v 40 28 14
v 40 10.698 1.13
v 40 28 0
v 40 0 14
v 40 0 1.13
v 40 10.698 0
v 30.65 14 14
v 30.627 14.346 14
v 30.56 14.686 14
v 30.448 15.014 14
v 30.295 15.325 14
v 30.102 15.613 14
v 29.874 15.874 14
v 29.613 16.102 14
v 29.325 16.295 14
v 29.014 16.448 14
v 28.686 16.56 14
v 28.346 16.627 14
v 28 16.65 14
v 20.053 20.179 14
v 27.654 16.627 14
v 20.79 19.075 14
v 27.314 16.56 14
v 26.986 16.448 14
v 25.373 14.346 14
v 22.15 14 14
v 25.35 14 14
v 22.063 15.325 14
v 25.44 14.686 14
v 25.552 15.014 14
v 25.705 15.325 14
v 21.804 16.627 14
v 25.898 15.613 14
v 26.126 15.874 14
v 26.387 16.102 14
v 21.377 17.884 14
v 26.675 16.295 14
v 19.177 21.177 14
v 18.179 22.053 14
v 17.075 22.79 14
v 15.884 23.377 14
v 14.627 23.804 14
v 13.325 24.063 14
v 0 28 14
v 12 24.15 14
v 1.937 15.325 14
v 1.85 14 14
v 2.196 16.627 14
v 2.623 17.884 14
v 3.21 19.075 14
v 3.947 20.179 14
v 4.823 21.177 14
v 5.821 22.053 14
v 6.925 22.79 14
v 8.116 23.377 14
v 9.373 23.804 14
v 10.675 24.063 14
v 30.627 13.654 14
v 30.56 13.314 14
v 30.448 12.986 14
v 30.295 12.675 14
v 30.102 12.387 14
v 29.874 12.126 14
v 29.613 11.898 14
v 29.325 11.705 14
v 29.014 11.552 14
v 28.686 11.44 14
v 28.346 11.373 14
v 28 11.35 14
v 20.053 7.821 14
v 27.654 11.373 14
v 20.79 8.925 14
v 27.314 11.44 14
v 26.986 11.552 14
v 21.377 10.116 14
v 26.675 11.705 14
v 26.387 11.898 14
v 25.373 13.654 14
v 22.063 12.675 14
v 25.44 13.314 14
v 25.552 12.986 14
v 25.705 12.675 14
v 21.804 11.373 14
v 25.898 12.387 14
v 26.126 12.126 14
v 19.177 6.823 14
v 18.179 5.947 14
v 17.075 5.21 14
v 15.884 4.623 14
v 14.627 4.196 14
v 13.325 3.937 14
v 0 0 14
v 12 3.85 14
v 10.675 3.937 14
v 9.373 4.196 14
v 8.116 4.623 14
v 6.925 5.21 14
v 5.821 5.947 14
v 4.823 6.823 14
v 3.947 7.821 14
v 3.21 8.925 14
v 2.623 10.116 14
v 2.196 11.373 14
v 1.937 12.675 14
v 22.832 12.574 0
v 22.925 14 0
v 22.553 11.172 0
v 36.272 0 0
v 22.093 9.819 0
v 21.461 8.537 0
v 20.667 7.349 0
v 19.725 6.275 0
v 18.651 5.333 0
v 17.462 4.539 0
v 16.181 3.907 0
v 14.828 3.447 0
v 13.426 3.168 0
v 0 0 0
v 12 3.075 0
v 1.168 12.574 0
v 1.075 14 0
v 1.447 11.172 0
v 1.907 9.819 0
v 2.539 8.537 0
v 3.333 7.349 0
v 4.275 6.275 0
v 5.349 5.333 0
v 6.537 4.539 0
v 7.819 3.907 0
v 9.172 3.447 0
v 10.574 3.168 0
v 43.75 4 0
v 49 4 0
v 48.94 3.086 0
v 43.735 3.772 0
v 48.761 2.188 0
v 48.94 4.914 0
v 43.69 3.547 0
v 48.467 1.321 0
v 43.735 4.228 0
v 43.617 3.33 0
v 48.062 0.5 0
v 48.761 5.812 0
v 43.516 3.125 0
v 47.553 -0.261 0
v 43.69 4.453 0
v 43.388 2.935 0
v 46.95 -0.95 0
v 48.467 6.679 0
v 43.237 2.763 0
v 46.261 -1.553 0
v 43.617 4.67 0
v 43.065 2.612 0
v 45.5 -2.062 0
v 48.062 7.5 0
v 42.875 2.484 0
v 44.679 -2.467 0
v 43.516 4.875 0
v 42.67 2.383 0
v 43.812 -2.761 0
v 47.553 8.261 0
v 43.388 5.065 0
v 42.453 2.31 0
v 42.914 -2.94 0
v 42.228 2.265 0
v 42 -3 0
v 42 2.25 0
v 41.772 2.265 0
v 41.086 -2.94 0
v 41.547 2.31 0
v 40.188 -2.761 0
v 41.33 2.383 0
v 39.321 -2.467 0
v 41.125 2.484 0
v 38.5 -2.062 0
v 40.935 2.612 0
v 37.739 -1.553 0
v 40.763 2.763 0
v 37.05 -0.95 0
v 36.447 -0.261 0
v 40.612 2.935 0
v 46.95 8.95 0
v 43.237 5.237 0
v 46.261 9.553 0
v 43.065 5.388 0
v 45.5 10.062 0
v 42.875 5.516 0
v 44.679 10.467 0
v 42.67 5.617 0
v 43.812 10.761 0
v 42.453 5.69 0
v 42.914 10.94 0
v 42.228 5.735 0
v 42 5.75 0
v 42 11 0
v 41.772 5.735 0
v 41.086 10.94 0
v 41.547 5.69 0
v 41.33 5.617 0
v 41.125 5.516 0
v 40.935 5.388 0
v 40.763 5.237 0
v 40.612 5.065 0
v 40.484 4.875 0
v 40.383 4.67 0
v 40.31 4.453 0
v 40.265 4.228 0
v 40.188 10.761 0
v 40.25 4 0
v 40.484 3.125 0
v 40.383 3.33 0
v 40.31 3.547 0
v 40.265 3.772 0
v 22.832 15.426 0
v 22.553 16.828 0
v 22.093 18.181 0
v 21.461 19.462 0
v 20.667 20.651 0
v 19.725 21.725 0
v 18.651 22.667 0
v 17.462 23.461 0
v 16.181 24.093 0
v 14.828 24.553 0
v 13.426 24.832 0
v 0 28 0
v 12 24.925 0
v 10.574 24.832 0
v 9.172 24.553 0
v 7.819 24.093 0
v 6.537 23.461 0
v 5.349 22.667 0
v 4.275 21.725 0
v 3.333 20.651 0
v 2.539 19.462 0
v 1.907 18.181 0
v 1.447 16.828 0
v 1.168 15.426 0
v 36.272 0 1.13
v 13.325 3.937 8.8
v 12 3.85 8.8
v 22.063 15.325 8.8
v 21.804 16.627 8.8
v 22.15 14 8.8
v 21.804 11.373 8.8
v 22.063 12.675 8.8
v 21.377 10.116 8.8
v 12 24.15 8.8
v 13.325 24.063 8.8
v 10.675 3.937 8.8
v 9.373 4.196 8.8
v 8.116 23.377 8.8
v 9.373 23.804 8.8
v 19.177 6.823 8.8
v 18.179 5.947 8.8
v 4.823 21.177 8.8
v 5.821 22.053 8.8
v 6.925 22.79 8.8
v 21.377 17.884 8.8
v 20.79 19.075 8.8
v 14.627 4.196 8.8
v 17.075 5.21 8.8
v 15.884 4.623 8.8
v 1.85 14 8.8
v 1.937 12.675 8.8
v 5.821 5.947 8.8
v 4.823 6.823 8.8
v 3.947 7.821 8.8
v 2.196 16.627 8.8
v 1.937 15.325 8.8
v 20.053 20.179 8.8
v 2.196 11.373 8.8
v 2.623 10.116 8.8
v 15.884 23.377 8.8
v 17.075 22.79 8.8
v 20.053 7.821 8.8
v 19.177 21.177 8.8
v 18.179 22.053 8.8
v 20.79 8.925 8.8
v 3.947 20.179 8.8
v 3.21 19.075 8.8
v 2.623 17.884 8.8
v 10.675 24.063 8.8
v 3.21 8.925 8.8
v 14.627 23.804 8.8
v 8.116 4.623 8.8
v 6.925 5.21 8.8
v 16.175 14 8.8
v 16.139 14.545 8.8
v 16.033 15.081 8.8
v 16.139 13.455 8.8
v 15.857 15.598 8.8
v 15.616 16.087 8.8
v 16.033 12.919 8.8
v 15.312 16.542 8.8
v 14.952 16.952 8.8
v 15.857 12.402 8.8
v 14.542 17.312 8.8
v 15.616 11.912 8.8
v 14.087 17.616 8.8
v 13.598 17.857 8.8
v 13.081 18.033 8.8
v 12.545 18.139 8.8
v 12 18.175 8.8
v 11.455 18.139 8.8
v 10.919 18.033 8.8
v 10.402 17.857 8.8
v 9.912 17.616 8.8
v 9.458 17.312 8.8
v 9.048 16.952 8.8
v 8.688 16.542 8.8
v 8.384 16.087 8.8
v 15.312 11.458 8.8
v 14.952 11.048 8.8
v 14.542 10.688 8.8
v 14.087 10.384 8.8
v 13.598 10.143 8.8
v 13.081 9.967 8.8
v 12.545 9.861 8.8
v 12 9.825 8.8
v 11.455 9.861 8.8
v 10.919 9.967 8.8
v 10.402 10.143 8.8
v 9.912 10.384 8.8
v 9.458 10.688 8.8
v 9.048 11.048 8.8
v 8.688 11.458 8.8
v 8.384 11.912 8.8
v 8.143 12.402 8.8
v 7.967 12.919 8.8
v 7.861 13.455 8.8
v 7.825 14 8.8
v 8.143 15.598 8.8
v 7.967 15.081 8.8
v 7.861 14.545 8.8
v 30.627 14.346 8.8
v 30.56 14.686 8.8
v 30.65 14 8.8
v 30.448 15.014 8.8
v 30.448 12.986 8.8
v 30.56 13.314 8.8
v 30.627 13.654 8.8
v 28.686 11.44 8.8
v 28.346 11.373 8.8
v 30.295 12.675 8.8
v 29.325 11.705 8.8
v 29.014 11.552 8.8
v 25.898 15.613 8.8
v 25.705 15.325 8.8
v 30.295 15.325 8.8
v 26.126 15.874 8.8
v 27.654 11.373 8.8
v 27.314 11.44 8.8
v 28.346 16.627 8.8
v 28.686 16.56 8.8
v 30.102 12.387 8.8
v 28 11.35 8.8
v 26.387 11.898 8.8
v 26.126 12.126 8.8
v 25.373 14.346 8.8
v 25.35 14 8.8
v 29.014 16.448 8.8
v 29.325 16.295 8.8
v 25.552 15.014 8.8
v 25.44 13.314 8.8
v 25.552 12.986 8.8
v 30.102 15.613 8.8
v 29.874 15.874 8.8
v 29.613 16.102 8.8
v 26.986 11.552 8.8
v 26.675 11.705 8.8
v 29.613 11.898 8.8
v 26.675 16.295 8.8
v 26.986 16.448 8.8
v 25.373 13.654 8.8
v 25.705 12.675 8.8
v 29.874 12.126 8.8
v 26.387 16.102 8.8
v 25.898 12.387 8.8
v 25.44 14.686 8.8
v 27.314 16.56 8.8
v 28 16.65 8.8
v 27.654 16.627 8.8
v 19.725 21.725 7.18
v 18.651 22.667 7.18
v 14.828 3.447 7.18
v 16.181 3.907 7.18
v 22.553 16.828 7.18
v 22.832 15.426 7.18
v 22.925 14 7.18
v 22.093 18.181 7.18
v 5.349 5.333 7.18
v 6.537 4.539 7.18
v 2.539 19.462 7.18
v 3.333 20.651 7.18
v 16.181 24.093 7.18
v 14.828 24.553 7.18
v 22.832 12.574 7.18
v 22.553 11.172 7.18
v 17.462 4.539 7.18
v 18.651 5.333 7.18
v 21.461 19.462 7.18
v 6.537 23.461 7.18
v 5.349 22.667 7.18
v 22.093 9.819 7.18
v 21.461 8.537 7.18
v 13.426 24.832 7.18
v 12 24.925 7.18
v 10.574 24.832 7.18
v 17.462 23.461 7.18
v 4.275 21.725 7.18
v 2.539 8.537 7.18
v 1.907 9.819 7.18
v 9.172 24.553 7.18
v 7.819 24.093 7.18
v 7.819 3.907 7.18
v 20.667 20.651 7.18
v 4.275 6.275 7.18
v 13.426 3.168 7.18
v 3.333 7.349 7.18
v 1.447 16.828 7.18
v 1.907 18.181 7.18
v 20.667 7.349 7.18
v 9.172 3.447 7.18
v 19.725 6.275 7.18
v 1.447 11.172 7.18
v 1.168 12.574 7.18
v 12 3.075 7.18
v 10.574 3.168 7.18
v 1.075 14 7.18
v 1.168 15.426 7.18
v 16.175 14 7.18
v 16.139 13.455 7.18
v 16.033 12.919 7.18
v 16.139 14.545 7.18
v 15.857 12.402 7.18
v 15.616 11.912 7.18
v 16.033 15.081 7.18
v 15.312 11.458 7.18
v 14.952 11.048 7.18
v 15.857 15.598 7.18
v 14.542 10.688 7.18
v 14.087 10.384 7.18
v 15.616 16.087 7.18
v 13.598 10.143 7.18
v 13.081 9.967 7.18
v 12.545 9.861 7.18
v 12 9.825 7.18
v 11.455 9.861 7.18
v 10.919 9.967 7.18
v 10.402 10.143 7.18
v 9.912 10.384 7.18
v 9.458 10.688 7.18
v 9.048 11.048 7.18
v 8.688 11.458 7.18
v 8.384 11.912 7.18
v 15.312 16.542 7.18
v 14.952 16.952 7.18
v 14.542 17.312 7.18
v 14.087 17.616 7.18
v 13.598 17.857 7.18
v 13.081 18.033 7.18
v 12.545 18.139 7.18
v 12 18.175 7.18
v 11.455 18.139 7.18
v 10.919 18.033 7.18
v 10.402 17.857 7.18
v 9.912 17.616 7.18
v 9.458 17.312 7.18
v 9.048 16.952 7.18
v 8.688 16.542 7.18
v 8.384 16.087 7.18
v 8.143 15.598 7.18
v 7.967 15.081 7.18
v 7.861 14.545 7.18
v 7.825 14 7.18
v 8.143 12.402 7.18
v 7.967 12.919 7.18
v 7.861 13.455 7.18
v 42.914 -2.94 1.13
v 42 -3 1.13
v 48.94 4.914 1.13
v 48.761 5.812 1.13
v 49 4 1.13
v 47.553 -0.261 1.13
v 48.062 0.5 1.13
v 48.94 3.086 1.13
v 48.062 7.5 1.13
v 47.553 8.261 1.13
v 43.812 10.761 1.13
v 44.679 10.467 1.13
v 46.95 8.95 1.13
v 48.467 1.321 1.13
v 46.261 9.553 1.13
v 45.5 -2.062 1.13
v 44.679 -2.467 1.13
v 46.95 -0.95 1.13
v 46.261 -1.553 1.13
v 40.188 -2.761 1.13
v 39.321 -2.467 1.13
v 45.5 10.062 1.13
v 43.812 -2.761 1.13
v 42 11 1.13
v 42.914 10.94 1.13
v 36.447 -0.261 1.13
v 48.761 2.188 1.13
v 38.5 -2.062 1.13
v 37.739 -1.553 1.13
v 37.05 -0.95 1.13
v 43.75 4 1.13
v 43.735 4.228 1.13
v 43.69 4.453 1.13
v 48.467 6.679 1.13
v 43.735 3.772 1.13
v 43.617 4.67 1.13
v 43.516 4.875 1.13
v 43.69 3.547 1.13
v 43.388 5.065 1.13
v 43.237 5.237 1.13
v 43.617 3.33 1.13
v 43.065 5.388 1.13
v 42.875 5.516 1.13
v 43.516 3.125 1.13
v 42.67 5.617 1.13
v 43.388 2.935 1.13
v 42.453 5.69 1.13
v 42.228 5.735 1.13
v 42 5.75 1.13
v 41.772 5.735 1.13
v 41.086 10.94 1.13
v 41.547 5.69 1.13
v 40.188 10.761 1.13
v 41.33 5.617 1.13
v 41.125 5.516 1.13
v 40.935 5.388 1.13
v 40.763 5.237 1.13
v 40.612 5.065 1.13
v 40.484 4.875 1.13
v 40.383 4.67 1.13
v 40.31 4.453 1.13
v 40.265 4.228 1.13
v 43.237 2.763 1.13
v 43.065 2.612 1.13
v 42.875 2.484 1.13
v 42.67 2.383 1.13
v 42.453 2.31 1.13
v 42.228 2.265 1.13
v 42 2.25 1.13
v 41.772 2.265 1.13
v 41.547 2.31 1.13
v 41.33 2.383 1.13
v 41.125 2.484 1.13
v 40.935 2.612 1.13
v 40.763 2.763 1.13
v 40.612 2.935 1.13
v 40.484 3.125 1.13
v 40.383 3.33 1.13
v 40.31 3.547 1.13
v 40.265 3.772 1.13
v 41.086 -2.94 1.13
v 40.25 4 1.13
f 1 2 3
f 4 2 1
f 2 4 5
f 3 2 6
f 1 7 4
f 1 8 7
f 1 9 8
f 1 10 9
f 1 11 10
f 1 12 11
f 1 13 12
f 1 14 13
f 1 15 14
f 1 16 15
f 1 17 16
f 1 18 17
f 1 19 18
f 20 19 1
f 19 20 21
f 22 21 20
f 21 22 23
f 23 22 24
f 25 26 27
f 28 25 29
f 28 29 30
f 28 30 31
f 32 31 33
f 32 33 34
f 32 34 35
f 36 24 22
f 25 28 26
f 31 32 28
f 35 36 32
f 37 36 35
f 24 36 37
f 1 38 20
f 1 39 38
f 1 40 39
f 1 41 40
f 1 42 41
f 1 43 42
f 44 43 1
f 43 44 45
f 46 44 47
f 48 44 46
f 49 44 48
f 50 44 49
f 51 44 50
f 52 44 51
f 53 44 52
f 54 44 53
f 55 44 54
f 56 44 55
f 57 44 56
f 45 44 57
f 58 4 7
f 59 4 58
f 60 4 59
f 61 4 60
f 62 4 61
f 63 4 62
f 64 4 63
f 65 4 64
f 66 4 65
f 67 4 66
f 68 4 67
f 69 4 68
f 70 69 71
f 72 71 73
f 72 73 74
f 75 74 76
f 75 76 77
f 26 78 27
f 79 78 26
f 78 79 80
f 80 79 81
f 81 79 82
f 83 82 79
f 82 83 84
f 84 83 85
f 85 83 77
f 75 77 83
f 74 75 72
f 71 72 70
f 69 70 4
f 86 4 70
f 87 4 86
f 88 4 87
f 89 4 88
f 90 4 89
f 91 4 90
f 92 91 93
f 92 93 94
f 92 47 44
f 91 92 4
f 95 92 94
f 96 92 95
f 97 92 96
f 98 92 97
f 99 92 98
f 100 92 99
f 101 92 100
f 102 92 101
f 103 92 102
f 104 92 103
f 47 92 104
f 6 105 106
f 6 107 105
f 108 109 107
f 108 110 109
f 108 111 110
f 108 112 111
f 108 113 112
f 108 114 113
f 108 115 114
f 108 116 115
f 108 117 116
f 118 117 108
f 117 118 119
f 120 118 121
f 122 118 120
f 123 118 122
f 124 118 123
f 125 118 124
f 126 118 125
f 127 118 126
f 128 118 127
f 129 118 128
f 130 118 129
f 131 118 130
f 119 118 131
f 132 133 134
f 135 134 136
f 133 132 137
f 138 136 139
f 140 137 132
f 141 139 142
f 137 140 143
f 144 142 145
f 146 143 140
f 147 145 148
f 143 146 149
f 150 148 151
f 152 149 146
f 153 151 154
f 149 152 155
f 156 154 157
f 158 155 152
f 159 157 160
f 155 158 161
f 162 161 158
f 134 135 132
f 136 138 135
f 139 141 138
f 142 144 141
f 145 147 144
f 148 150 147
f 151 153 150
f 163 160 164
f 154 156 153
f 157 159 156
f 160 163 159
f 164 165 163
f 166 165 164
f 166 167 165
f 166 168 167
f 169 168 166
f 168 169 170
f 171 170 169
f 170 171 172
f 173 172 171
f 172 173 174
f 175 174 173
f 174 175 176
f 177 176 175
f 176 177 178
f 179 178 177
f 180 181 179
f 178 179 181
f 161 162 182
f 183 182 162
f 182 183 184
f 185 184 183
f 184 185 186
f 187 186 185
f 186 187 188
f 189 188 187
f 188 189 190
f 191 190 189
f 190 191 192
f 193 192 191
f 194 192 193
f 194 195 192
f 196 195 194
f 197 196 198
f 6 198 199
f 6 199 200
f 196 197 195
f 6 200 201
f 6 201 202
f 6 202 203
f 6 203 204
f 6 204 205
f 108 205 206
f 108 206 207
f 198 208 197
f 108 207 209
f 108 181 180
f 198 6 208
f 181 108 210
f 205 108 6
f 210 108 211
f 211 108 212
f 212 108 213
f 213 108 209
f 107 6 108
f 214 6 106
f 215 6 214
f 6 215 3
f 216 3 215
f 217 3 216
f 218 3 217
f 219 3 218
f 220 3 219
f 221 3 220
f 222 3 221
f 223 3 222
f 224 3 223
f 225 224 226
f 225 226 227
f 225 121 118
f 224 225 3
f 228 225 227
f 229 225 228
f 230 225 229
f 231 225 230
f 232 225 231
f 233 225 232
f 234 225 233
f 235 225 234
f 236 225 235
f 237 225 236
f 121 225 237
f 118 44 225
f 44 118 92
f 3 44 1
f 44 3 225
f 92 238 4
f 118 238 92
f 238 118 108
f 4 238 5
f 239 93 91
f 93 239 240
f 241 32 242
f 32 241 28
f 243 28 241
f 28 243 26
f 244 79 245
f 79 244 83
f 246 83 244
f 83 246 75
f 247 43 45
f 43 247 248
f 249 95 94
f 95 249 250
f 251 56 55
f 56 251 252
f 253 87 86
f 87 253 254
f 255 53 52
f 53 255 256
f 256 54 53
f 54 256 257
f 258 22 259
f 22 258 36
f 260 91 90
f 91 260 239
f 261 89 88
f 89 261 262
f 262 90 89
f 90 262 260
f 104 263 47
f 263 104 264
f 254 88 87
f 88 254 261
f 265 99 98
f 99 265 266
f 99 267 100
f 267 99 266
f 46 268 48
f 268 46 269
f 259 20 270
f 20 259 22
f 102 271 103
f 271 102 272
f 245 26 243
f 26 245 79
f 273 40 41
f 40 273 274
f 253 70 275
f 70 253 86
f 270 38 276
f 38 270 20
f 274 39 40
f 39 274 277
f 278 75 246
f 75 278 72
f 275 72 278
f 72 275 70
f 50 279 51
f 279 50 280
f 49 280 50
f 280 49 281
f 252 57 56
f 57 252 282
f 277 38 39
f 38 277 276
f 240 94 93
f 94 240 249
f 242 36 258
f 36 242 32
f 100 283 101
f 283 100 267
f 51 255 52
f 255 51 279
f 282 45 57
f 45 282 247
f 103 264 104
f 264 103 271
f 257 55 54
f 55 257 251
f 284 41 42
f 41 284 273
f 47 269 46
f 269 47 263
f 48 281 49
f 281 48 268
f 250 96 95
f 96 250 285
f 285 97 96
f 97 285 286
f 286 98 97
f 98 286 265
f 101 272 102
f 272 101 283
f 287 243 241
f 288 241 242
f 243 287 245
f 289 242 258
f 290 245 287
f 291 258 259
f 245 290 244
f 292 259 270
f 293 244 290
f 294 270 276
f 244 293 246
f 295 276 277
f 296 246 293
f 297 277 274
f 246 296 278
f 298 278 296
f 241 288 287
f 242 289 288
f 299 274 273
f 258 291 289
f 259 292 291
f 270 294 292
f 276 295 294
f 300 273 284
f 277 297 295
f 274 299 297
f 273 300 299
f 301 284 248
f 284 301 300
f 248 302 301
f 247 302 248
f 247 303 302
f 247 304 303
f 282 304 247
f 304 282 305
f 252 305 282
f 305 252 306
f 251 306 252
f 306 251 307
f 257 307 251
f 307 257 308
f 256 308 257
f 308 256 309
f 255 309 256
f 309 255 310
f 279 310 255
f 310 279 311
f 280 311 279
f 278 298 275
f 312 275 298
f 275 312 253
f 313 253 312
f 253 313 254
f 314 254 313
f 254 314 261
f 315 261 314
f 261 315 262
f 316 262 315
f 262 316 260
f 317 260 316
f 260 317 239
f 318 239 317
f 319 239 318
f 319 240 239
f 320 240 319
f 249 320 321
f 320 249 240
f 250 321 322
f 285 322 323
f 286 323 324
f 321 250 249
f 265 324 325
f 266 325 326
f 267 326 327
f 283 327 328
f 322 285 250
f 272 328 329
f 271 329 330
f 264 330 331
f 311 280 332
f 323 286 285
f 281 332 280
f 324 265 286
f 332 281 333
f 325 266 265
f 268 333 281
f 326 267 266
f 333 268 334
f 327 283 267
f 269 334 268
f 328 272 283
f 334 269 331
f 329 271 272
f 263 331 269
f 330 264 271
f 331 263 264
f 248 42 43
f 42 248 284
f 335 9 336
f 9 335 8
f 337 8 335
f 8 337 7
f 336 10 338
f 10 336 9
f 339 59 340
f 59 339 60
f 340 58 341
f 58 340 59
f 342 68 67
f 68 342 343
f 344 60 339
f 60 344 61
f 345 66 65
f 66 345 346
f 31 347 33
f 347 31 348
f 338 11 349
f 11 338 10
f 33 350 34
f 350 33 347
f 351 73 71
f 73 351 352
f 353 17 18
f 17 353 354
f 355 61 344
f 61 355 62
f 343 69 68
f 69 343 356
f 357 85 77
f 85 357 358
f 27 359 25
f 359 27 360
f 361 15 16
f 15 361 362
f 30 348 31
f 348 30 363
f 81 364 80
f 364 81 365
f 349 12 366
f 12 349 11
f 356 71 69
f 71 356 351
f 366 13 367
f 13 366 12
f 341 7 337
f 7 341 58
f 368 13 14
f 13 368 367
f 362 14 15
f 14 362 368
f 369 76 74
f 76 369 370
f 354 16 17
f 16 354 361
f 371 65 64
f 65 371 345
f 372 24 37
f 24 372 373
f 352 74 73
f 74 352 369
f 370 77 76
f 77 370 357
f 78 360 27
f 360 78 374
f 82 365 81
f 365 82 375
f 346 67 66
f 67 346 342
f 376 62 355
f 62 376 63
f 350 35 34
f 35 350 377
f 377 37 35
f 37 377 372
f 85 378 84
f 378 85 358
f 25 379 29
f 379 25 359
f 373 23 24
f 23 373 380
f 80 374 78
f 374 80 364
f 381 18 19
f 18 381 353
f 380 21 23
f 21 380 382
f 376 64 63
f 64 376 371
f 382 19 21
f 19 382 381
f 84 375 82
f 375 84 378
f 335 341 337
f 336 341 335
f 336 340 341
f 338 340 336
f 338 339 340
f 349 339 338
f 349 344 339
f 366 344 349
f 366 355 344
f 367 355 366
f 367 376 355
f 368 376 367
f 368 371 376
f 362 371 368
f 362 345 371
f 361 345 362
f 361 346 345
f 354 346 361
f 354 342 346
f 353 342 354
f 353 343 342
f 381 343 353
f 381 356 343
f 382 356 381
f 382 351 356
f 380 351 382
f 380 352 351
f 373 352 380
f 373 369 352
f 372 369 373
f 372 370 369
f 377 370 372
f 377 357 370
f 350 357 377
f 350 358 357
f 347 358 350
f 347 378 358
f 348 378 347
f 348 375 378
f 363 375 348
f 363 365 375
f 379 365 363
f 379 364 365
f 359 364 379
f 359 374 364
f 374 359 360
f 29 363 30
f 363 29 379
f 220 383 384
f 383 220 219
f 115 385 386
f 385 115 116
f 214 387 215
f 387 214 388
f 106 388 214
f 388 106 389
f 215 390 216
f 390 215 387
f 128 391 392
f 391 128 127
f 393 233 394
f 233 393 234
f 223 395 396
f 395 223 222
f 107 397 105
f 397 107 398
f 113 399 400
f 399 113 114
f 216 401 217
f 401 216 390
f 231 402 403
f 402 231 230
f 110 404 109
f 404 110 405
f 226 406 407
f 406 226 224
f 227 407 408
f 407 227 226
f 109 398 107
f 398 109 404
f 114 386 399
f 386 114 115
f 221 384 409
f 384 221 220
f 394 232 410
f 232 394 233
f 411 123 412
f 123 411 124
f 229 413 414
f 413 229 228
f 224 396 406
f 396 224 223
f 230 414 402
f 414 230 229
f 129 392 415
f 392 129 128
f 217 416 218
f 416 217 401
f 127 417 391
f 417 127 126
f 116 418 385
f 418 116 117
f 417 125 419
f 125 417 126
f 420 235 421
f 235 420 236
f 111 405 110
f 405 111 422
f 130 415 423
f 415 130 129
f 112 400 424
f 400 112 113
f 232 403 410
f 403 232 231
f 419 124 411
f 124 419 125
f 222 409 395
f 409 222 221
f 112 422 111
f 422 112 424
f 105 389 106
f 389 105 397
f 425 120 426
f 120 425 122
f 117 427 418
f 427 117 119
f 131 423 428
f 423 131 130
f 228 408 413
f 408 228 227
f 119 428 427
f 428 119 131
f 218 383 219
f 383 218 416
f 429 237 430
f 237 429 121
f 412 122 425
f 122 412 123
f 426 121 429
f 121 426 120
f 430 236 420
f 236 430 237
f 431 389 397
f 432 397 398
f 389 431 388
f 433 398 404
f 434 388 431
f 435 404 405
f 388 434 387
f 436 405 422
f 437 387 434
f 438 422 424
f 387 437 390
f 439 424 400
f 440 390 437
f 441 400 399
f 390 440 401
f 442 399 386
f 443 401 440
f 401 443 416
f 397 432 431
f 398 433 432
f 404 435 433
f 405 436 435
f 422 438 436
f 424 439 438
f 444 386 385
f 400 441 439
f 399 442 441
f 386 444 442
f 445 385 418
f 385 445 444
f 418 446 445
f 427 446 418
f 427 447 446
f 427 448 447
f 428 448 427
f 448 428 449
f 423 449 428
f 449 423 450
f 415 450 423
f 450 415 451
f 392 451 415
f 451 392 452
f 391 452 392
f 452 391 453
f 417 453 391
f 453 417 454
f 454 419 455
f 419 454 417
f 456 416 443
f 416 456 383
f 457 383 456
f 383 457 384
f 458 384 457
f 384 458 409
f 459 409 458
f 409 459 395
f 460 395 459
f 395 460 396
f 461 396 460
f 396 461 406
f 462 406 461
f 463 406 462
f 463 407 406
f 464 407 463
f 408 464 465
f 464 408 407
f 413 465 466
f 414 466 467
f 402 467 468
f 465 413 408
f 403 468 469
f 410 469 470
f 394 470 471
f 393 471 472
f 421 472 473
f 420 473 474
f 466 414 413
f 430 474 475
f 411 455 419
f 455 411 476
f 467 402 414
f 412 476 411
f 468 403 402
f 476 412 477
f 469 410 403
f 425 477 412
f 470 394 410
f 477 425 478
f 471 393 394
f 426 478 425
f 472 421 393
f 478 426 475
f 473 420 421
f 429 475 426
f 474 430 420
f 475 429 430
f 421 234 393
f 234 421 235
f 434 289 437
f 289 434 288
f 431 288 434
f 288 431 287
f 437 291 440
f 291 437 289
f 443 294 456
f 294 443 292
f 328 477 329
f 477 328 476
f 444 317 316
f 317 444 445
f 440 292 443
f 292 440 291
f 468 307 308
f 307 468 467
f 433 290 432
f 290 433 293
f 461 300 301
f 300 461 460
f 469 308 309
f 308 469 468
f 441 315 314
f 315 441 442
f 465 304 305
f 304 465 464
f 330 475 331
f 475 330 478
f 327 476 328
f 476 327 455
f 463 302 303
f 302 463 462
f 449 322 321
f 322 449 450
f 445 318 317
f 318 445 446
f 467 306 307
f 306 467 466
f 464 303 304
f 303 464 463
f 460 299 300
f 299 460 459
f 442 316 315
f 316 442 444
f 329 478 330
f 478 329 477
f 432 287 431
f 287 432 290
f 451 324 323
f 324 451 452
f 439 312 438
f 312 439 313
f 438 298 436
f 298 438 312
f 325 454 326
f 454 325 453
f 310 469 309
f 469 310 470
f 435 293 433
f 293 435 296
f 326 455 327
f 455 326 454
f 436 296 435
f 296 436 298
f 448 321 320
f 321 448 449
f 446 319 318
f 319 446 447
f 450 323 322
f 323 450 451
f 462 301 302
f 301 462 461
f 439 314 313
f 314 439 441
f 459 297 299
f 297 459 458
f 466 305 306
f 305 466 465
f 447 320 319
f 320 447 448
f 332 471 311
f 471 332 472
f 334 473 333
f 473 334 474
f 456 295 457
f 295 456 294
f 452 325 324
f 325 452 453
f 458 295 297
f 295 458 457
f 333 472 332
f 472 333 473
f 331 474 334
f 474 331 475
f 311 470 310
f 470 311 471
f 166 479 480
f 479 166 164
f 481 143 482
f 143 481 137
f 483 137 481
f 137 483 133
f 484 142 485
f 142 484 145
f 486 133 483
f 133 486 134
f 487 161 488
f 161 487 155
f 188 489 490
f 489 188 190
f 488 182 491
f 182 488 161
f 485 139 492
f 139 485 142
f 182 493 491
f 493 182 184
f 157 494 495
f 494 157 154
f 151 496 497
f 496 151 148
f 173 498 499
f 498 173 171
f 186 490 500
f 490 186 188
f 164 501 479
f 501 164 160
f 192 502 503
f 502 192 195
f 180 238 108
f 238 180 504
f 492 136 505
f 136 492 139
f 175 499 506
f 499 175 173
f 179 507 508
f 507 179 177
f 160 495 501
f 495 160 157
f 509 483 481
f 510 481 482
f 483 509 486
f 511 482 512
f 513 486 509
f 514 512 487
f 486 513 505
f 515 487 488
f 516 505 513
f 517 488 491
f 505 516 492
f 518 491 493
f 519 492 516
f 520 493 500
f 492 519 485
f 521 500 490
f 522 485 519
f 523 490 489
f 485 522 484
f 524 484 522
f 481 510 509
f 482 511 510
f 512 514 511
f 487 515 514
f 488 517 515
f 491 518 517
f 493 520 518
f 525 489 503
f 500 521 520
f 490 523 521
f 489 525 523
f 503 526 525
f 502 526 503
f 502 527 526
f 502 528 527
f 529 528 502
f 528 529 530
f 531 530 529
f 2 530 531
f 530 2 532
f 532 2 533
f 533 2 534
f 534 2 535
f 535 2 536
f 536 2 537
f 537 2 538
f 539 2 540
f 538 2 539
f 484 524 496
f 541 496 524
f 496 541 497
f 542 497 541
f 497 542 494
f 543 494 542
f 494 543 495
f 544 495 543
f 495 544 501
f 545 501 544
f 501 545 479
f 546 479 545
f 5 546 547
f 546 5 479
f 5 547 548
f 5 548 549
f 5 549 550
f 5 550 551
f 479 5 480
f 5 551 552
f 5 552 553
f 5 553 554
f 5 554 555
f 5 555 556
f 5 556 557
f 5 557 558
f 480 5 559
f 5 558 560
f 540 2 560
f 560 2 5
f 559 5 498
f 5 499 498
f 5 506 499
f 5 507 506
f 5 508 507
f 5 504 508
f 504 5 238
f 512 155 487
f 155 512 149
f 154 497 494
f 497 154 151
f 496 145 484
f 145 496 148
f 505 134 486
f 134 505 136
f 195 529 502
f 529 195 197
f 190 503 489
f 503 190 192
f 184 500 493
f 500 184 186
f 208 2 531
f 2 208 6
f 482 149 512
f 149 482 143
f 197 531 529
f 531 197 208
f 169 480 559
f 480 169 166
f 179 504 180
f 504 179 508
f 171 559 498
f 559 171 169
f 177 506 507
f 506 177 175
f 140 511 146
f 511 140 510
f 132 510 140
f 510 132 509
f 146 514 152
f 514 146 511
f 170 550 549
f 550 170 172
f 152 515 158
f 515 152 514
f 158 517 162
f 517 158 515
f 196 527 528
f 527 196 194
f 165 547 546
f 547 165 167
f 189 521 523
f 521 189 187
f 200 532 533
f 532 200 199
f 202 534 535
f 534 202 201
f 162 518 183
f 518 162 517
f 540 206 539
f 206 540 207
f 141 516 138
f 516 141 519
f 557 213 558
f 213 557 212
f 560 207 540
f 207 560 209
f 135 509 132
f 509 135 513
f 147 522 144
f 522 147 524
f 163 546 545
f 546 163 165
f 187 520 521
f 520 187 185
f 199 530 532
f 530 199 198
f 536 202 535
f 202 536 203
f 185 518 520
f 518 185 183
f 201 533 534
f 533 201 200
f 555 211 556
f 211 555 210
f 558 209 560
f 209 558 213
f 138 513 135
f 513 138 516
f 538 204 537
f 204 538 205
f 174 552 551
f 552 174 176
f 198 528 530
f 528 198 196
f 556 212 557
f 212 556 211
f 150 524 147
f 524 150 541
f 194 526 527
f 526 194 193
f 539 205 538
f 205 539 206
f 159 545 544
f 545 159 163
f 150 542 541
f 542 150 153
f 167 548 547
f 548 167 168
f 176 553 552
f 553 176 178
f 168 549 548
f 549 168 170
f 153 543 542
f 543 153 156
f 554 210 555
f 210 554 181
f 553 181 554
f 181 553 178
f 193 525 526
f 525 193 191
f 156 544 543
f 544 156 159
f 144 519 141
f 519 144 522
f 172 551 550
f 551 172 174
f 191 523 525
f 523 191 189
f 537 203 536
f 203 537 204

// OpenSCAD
// file: parameters.scad
// =============================================================================
// Gen-AJ Vernier flux-claw ultra — WOUND-AWARE (HARD GATE)
// Dual-rotor vernier: Rotor B +22.5° vs 12-slot stator; Ø5 flux claws
// =============================================================================

wire_awg            = 26;
wire_od             = 0.45;
turns               = 175;
fill                = 0.70;
layers_per_face     = 2;
wind_build_axial    = layers_per_face * wire_od * fill;   // 0.63 mm
wind_build_radial   = 3 * wire_od * fill;                 // 0.945 mm

coil_id_r           = 17.0;
coil_od_r           = 64.0;
span_deg            = 25.0;
former_web          = 1.50;
flange_t            = 0.60;
wall                = 1.2;
slot_w              = 2.4;
mount_hole          = 3.5;
tab_len             = 7.0;

former_bare_h       = former_web + 2 * flange_t;            // 2.70 mm
coil_envelope_h     = former_bare_h + 2 * wind_build_axial; // 3.96 mm

run_clear           = 0.50;
gap_spacer_h        = run_clear + wind_build_axial;         // 1.13 mm
m2m                 = coil_envelope_h + 2 * run_clear;      // 4.96 mm

coil_stations       = 12;
bay_r_in            = coil_id_r - 2.0 - wind_build_radial;
bay_r_out           = coil_od_r + 2.0 + wind_build_radial;
bay_span            = span_deg + 4.0;
bay_offset          = 2.0;
stator_thick        = former_bare_h;
stator_od           = 160.0;
shaft_clear_stator  = 34.0;
coil_mount_r        = 26.0;

large_pocket_d      = 20.3;
small_pocket_d      = 5.3;
pocket_h            = 5.2;
large_n             = 8;
R_large             = 42.0;
R_small_inner       = 27.0;
R_small_mid         = 42.0;
R_small_outer       = 57.0;
carrier_od          = 156.0;
carrier_thick       = 7.5;
hub_h               = 10.0;
hub_od              = 30.0;
rotor_b_offset_deg  = 22.5;     // vernier offset vs 12-slot stator

shaft_bore          = 8.35;
bearing_d           = 21.85;
bearing_h           = 7.2;
m3_clear            = 3.5;
bolt_r_inner        = 36.0;
bolt_n_inner        = 6;
flange_bolt_r       = 72.0;
flange_bolt_n       = 6;
brace_r             = 68.0;
brace_d             = 4.3;
brace_n             = 4;

spacer_pad_od       = 14.0;
spacer_pad_id       = m3_clear;
endbell_od          = 160.0;
endbell_thick       = 8.0;
endbell_shaft_clear = 10.0;

$fn = 64;
// main file
// Gen-AJ fit coupon — magnet pockets + 608 + spacer height
include <parameters.scad>;
$fn = 48;
block_w = 40; block_d = 28; block_h = 14;
difference() {
    cube([block_w, block_d, block_h]);
    translate([12, block_d/2, block_h - pocket_h])
        cylinder(d=large_pocket_d, h=pocket_h + 0.2);
    translate([28, block_d/2, block_h - pocket_h])
        cylinder(d=small_pocket_d, h=pocket_h + 0.2);
    translate([12, block_d/2, -0.02])
        cylinder(d=bearing_d, h=bearing_h);
    translate([12, block_d/2, -0.1])
        cylinder(d=shaft_bore, h=block_h + 1);
}
translate([block_w + 2, 4, 0])
    difference() {
        cylinder(d=spacer_pad_od, h=gap_spacer_h);
        translate([0, 0, -0.1]) cylinder(d=spacer_pad_id, h=gap_spacer_h + 0.2);
    }
